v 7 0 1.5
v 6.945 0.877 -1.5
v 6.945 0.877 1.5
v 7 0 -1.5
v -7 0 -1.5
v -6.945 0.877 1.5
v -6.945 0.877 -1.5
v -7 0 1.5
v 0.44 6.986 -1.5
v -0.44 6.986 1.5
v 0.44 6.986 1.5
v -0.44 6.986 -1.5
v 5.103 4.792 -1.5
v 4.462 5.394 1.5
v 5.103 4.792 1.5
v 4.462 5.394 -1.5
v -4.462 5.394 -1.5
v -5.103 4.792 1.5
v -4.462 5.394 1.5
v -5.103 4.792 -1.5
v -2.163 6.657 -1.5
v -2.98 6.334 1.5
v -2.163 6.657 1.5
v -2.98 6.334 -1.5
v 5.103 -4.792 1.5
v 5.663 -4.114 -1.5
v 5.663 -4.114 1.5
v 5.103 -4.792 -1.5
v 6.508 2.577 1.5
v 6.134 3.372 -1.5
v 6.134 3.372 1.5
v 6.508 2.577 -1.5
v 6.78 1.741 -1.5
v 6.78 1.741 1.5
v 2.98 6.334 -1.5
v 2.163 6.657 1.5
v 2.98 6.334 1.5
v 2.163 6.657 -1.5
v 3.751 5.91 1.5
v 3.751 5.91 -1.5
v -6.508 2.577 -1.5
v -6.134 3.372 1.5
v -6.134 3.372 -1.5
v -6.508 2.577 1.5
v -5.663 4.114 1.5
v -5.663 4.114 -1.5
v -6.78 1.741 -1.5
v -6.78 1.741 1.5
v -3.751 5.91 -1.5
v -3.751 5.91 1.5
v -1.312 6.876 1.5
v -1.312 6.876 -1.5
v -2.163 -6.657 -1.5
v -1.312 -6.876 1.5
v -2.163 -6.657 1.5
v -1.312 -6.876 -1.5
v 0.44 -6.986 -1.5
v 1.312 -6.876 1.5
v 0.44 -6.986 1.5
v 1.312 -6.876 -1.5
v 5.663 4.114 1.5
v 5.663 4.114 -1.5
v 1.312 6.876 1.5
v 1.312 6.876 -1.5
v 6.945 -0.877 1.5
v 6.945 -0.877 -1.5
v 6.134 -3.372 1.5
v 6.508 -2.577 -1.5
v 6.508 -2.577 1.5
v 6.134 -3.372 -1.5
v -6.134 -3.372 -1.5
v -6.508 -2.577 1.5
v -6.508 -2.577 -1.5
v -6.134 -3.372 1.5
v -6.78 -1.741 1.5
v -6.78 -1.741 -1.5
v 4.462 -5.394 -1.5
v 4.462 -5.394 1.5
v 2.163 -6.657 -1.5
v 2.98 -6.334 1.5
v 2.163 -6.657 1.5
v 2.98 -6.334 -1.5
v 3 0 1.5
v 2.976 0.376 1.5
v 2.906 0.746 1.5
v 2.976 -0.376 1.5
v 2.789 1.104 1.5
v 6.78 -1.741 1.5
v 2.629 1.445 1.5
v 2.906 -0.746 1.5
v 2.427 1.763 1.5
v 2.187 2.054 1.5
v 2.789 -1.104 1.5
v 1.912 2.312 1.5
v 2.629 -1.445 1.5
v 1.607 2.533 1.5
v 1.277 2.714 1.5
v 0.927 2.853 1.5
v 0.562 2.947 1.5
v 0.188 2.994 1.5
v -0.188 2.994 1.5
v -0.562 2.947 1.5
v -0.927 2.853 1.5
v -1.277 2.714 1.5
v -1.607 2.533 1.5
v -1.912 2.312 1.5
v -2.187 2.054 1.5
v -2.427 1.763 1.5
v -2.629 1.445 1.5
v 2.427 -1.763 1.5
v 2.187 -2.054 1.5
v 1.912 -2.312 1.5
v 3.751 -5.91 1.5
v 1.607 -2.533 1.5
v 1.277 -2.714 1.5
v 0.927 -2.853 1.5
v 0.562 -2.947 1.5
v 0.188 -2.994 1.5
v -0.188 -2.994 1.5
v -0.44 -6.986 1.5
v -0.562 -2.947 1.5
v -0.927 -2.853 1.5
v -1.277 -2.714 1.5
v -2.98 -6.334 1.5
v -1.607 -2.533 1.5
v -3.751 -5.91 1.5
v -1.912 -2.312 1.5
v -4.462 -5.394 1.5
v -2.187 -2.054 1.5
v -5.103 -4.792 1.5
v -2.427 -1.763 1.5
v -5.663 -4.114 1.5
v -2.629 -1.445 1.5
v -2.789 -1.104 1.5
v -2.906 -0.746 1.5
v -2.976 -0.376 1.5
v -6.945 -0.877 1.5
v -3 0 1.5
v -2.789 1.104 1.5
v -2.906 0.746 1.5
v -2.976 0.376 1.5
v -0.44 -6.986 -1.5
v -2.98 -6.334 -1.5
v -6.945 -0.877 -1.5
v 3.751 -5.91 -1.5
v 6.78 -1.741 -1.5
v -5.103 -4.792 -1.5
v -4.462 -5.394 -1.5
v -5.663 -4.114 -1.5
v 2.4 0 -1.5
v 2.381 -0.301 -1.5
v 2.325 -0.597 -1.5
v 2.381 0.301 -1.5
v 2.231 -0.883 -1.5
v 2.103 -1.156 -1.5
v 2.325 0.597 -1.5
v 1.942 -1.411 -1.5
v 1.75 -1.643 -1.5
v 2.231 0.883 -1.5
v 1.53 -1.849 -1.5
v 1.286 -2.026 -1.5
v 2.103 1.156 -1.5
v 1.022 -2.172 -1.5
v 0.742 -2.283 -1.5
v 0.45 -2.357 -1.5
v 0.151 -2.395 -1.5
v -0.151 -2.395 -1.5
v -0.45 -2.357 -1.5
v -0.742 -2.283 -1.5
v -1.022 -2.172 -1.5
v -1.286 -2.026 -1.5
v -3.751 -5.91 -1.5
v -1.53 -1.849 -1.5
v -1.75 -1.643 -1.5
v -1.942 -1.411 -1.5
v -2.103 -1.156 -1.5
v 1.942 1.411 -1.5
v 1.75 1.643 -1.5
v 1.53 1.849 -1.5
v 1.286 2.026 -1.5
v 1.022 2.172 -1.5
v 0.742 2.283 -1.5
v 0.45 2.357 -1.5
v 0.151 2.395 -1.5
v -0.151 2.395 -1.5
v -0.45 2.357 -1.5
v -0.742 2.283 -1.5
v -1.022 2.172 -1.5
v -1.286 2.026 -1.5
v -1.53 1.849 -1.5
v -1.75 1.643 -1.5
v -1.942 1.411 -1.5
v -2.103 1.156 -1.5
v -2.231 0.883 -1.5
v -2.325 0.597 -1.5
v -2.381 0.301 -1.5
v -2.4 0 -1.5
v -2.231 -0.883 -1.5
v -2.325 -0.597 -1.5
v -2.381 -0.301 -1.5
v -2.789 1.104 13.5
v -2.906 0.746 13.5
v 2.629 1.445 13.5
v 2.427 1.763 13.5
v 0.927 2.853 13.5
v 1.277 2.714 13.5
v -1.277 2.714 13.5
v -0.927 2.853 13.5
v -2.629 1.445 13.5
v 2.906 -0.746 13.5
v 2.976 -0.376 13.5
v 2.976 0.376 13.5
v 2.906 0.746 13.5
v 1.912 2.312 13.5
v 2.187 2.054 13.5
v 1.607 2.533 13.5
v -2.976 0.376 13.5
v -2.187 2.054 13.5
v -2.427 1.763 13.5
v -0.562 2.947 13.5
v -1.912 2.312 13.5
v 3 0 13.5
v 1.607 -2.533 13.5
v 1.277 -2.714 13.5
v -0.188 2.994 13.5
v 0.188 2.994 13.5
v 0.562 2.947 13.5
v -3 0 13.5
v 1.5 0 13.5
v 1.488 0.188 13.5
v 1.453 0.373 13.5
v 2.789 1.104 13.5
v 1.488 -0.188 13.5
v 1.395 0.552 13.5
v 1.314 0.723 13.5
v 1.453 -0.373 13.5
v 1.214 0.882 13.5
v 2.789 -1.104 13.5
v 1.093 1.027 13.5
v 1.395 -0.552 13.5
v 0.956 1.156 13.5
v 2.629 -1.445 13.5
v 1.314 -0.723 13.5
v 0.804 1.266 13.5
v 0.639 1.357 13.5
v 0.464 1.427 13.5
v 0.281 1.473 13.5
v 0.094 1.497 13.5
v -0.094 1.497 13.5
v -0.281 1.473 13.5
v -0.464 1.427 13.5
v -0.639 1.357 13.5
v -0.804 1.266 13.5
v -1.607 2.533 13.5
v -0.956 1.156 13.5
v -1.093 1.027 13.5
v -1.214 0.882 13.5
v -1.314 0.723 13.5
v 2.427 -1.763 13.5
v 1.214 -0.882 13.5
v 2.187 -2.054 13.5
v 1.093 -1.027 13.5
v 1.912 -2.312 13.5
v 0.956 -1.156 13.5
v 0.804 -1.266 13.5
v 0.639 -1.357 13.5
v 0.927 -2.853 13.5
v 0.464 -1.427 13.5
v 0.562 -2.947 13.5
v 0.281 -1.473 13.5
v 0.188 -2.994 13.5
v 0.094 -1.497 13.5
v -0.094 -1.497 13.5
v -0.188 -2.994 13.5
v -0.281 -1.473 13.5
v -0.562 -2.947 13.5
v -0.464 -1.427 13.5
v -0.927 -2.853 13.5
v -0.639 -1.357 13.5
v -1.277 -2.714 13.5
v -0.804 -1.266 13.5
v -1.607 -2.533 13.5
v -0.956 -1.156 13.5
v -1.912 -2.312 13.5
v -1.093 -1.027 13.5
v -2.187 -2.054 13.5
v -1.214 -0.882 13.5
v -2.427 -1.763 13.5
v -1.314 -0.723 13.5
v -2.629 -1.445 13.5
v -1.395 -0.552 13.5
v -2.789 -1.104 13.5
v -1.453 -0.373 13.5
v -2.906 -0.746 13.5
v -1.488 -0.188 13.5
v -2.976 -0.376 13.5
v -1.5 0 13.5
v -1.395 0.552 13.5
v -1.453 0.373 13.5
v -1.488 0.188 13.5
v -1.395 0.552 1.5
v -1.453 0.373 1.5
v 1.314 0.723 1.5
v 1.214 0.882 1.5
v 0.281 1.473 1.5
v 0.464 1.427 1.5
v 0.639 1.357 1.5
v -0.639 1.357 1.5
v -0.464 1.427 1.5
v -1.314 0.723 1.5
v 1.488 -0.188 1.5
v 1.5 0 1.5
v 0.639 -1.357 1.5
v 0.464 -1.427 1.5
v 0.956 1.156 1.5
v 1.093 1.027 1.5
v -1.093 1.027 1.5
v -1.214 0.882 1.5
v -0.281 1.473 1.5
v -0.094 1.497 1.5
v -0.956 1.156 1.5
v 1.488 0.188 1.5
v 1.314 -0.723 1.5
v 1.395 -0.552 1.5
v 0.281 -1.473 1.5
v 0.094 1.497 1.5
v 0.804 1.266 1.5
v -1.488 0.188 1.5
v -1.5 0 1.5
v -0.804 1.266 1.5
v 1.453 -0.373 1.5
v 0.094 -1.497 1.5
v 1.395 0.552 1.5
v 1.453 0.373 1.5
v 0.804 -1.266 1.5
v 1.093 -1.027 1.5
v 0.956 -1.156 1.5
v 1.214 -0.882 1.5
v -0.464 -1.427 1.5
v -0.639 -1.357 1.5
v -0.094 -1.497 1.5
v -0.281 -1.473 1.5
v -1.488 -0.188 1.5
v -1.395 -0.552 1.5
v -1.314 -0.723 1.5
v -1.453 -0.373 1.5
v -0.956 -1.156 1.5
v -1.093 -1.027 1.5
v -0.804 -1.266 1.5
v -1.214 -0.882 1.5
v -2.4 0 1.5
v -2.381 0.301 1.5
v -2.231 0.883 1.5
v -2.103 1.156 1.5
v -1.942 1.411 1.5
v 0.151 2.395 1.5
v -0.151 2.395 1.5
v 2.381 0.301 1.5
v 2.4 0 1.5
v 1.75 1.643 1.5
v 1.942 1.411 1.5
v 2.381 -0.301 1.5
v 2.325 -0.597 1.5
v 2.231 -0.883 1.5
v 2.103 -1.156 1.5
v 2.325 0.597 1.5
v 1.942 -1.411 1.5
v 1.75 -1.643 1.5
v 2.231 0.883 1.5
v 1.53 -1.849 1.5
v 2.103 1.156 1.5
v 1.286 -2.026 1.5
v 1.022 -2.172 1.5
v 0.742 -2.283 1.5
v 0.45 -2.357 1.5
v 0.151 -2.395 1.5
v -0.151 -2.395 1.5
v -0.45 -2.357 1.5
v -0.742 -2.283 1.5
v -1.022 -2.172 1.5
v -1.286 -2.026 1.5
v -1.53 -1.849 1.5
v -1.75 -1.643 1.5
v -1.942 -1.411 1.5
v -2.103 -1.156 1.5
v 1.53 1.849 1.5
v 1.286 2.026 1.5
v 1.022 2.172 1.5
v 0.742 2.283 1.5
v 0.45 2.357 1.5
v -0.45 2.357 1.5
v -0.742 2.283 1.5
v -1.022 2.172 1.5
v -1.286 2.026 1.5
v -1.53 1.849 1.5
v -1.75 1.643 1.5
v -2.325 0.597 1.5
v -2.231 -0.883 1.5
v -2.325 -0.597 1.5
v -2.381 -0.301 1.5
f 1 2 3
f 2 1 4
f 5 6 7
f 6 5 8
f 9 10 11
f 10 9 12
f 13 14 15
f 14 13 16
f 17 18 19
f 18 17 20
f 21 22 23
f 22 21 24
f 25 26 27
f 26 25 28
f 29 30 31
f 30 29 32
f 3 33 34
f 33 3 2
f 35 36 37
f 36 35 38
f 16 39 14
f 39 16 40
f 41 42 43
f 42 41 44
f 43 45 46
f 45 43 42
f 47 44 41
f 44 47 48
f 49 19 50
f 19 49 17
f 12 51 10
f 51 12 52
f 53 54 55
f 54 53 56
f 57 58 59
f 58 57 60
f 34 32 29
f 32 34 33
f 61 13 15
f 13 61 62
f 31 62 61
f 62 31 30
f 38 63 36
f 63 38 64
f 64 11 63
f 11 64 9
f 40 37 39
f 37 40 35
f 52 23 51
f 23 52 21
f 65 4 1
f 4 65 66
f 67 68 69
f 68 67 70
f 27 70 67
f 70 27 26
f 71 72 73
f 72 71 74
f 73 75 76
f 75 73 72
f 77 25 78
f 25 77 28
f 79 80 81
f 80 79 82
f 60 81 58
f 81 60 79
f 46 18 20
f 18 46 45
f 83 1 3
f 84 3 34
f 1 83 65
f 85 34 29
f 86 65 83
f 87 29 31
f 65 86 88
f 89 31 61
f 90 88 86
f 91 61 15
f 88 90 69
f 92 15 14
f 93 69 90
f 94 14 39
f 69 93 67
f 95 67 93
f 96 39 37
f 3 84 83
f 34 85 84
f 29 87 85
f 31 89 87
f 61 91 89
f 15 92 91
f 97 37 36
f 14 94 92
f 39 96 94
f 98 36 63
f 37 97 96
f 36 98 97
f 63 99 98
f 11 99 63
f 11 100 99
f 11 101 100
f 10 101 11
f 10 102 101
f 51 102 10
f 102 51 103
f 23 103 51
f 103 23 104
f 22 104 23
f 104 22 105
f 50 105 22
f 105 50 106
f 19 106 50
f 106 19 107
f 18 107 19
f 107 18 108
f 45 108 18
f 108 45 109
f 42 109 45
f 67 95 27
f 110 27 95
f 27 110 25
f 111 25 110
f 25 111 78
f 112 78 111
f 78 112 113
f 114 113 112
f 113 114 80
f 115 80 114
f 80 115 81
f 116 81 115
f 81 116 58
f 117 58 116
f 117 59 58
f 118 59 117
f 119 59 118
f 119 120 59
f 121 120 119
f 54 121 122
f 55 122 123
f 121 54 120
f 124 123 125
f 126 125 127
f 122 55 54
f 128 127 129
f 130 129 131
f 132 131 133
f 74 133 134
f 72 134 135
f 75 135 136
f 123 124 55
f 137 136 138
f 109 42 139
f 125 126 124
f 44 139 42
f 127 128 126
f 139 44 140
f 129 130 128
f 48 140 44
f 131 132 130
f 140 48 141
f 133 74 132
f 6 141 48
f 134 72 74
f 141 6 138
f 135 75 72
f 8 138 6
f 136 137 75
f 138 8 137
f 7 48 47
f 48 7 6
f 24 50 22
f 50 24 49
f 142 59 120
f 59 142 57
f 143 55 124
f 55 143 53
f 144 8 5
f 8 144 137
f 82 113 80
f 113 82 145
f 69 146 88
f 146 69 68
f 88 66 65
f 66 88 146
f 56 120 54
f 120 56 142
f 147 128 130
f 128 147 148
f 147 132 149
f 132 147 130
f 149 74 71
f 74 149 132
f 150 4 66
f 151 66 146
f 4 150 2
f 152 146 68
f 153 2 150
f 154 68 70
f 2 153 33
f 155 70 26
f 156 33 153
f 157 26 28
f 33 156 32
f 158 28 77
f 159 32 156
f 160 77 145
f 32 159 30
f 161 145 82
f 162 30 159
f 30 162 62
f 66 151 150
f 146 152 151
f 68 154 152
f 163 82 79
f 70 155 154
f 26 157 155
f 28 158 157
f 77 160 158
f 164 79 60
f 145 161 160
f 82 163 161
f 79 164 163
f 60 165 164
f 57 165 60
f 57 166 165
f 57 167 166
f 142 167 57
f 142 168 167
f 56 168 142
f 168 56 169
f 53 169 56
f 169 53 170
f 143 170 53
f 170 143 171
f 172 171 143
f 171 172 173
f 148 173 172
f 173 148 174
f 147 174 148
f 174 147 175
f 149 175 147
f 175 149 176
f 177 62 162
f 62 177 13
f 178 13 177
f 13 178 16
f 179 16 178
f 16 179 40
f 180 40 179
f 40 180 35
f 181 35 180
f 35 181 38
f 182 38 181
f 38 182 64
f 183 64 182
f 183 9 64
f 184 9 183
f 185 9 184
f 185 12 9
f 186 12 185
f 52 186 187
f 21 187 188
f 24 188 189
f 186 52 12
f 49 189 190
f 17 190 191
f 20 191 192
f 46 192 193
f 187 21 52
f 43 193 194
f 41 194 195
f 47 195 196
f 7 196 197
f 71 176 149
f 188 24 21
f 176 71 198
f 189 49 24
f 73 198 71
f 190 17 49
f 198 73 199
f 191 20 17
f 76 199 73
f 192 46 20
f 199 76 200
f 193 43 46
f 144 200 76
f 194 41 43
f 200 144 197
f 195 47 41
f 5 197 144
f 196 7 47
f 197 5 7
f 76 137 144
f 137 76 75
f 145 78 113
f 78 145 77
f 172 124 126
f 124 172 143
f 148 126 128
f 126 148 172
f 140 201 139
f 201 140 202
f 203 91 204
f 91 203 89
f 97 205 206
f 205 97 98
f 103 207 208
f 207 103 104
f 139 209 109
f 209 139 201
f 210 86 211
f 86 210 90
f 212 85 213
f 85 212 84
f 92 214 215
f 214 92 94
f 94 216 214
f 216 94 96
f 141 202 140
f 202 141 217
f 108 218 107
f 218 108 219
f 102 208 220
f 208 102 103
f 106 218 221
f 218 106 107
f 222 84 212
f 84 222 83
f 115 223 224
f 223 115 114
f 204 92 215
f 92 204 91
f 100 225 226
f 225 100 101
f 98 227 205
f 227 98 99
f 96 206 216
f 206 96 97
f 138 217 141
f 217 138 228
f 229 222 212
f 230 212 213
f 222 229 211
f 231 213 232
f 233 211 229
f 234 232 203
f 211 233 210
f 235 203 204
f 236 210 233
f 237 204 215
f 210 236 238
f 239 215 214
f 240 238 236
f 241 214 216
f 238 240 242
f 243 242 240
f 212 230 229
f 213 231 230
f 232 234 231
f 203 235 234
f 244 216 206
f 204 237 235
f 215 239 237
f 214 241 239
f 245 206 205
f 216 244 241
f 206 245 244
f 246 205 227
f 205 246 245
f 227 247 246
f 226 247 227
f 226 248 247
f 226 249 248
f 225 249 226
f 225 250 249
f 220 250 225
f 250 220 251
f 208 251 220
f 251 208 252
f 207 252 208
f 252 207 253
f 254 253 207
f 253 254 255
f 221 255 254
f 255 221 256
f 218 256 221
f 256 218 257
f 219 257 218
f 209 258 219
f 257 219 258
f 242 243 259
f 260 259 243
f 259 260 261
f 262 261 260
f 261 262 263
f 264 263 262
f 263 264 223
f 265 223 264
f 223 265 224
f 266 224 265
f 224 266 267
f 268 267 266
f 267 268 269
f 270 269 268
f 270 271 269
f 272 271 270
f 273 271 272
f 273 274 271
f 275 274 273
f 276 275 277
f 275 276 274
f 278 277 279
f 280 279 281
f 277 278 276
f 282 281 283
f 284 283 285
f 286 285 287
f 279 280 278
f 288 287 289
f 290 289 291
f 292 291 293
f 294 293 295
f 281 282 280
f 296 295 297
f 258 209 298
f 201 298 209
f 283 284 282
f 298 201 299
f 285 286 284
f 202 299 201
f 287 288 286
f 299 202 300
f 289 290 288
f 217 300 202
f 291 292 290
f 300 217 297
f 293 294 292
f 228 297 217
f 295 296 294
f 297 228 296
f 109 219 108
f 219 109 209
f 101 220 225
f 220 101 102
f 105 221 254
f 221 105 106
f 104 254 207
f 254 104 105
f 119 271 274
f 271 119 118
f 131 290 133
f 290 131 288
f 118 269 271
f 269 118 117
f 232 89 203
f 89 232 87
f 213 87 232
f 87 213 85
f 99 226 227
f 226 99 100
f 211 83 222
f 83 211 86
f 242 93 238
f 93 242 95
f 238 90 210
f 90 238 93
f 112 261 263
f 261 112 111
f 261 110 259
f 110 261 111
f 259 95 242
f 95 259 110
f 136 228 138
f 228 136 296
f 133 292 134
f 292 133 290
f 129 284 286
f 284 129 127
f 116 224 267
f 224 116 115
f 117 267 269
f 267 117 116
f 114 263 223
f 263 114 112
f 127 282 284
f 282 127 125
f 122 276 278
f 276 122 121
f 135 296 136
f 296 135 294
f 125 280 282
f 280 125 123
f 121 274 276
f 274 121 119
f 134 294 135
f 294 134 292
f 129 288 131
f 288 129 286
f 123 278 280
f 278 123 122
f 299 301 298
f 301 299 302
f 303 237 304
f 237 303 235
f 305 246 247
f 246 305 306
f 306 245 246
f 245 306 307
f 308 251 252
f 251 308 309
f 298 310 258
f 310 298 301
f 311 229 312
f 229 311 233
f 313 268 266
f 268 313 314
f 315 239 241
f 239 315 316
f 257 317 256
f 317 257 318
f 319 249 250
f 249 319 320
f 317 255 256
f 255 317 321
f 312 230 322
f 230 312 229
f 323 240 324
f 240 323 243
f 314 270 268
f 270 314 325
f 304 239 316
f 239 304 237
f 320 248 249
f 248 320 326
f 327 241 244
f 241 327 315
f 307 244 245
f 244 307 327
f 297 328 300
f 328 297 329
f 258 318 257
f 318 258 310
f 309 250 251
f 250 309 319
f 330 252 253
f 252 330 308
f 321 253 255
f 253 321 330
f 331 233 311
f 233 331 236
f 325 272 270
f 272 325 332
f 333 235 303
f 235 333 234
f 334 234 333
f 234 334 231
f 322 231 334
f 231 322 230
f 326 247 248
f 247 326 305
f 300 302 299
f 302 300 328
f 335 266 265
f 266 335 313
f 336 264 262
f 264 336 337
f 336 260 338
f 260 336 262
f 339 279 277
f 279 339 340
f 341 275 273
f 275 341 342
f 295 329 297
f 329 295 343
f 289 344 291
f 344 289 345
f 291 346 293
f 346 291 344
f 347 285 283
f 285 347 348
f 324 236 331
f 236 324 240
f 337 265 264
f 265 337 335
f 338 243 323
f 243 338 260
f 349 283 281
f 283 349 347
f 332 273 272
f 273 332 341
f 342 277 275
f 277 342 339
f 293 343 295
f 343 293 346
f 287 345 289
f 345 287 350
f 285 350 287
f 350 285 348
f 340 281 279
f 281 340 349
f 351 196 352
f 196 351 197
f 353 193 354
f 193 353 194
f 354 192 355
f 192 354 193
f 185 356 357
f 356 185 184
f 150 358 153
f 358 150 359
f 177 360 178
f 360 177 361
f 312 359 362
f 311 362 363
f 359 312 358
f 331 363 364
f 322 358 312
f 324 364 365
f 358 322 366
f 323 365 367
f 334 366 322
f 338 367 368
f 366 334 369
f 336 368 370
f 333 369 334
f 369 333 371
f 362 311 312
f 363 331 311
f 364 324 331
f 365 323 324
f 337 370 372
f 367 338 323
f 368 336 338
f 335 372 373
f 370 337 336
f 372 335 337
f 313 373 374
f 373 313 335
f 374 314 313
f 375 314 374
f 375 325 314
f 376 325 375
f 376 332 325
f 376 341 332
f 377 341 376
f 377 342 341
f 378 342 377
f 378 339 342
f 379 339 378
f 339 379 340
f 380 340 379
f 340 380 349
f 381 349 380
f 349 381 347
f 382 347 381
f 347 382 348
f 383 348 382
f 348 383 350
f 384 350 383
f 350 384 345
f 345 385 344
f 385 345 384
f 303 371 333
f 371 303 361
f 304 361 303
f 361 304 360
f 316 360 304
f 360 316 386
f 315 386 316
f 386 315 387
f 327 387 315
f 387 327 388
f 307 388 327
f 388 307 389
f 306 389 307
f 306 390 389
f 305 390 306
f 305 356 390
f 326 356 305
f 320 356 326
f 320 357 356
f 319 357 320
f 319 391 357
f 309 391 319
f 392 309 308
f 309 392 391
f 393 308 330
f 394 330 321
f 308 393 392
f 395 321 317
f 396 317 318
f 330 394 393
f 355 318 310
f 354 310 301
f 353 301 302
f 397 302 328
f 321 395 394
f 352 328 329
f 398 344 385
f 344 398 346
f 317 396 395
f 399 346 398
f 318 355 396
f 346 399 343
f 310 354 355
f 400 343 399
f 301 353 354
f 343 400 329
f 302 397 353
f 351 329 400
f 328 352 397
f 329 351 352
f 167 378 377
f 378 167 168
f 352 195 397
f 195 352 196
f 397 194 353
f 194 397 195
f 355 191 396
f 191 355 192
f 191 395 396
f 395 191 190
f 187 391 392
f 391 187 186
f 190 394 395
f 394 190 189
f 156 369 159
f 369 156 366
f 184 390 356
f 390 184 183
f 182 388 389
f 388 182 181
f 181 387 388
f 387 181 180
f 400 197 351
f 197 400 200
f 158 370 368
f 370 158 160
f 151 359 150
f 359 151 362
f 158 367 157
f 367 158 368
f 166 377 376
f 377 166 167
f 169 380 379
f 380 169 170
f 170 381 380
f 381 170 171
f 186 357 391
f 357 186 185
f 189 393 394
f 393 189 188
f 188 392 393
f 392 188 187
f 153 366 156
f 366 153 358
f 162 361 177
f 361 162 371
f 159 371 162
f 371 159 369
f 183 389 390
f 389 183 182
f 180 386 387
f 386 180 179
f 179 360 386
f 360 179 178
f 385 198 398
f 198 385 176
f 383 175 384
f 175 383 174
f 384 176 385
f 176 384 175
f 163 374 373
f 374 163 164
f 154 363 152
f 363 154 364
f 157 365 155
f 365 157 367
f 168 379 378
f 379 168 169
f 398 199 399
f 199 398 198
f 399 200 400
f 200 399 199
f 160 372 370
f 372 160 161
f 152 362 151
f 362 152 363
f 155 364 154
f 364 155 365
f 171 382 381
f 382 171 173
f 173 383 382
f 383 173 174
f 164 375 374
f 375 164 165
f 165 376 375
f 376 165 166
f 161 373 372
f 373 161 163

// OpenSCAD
$fn = 50;


difference() {
	union() {
		translate(v = [0, 0, -1.5000000000]) {
			rotate(a = [0, 0, 0]) {
				cylinder(h = 3, r = 7.0000000000);
			}
		}
		translate(v = [0, 0, -1.5000000000]) {
			rotate(a = [0, 0, 0]) {
				cylinder(h = 15, r = 3.0000000000);
			}
		}
	}
	union() {
		translate(v = [0, 0, -125.0000000000]) {
			rotate(a = [0, 0, 0]) {
				cylinder(h = 250, r = 1.5000000000);
			}
		}
		#translate(v = [0, 0, 1.5000000000]) {
			rotate(a = [0, 180, 0]) {
				cylinder(h = 3, r1 = 2.4000000000, r2 = 2.4000000000);
			}
		}
		#translate(v = [0, 0, 13.5000000000]) {
			rotate(a = [0, 180, 0]) {
				cylinder(h = 15, r = 1.5000000000);
			}
		}
	}
}
